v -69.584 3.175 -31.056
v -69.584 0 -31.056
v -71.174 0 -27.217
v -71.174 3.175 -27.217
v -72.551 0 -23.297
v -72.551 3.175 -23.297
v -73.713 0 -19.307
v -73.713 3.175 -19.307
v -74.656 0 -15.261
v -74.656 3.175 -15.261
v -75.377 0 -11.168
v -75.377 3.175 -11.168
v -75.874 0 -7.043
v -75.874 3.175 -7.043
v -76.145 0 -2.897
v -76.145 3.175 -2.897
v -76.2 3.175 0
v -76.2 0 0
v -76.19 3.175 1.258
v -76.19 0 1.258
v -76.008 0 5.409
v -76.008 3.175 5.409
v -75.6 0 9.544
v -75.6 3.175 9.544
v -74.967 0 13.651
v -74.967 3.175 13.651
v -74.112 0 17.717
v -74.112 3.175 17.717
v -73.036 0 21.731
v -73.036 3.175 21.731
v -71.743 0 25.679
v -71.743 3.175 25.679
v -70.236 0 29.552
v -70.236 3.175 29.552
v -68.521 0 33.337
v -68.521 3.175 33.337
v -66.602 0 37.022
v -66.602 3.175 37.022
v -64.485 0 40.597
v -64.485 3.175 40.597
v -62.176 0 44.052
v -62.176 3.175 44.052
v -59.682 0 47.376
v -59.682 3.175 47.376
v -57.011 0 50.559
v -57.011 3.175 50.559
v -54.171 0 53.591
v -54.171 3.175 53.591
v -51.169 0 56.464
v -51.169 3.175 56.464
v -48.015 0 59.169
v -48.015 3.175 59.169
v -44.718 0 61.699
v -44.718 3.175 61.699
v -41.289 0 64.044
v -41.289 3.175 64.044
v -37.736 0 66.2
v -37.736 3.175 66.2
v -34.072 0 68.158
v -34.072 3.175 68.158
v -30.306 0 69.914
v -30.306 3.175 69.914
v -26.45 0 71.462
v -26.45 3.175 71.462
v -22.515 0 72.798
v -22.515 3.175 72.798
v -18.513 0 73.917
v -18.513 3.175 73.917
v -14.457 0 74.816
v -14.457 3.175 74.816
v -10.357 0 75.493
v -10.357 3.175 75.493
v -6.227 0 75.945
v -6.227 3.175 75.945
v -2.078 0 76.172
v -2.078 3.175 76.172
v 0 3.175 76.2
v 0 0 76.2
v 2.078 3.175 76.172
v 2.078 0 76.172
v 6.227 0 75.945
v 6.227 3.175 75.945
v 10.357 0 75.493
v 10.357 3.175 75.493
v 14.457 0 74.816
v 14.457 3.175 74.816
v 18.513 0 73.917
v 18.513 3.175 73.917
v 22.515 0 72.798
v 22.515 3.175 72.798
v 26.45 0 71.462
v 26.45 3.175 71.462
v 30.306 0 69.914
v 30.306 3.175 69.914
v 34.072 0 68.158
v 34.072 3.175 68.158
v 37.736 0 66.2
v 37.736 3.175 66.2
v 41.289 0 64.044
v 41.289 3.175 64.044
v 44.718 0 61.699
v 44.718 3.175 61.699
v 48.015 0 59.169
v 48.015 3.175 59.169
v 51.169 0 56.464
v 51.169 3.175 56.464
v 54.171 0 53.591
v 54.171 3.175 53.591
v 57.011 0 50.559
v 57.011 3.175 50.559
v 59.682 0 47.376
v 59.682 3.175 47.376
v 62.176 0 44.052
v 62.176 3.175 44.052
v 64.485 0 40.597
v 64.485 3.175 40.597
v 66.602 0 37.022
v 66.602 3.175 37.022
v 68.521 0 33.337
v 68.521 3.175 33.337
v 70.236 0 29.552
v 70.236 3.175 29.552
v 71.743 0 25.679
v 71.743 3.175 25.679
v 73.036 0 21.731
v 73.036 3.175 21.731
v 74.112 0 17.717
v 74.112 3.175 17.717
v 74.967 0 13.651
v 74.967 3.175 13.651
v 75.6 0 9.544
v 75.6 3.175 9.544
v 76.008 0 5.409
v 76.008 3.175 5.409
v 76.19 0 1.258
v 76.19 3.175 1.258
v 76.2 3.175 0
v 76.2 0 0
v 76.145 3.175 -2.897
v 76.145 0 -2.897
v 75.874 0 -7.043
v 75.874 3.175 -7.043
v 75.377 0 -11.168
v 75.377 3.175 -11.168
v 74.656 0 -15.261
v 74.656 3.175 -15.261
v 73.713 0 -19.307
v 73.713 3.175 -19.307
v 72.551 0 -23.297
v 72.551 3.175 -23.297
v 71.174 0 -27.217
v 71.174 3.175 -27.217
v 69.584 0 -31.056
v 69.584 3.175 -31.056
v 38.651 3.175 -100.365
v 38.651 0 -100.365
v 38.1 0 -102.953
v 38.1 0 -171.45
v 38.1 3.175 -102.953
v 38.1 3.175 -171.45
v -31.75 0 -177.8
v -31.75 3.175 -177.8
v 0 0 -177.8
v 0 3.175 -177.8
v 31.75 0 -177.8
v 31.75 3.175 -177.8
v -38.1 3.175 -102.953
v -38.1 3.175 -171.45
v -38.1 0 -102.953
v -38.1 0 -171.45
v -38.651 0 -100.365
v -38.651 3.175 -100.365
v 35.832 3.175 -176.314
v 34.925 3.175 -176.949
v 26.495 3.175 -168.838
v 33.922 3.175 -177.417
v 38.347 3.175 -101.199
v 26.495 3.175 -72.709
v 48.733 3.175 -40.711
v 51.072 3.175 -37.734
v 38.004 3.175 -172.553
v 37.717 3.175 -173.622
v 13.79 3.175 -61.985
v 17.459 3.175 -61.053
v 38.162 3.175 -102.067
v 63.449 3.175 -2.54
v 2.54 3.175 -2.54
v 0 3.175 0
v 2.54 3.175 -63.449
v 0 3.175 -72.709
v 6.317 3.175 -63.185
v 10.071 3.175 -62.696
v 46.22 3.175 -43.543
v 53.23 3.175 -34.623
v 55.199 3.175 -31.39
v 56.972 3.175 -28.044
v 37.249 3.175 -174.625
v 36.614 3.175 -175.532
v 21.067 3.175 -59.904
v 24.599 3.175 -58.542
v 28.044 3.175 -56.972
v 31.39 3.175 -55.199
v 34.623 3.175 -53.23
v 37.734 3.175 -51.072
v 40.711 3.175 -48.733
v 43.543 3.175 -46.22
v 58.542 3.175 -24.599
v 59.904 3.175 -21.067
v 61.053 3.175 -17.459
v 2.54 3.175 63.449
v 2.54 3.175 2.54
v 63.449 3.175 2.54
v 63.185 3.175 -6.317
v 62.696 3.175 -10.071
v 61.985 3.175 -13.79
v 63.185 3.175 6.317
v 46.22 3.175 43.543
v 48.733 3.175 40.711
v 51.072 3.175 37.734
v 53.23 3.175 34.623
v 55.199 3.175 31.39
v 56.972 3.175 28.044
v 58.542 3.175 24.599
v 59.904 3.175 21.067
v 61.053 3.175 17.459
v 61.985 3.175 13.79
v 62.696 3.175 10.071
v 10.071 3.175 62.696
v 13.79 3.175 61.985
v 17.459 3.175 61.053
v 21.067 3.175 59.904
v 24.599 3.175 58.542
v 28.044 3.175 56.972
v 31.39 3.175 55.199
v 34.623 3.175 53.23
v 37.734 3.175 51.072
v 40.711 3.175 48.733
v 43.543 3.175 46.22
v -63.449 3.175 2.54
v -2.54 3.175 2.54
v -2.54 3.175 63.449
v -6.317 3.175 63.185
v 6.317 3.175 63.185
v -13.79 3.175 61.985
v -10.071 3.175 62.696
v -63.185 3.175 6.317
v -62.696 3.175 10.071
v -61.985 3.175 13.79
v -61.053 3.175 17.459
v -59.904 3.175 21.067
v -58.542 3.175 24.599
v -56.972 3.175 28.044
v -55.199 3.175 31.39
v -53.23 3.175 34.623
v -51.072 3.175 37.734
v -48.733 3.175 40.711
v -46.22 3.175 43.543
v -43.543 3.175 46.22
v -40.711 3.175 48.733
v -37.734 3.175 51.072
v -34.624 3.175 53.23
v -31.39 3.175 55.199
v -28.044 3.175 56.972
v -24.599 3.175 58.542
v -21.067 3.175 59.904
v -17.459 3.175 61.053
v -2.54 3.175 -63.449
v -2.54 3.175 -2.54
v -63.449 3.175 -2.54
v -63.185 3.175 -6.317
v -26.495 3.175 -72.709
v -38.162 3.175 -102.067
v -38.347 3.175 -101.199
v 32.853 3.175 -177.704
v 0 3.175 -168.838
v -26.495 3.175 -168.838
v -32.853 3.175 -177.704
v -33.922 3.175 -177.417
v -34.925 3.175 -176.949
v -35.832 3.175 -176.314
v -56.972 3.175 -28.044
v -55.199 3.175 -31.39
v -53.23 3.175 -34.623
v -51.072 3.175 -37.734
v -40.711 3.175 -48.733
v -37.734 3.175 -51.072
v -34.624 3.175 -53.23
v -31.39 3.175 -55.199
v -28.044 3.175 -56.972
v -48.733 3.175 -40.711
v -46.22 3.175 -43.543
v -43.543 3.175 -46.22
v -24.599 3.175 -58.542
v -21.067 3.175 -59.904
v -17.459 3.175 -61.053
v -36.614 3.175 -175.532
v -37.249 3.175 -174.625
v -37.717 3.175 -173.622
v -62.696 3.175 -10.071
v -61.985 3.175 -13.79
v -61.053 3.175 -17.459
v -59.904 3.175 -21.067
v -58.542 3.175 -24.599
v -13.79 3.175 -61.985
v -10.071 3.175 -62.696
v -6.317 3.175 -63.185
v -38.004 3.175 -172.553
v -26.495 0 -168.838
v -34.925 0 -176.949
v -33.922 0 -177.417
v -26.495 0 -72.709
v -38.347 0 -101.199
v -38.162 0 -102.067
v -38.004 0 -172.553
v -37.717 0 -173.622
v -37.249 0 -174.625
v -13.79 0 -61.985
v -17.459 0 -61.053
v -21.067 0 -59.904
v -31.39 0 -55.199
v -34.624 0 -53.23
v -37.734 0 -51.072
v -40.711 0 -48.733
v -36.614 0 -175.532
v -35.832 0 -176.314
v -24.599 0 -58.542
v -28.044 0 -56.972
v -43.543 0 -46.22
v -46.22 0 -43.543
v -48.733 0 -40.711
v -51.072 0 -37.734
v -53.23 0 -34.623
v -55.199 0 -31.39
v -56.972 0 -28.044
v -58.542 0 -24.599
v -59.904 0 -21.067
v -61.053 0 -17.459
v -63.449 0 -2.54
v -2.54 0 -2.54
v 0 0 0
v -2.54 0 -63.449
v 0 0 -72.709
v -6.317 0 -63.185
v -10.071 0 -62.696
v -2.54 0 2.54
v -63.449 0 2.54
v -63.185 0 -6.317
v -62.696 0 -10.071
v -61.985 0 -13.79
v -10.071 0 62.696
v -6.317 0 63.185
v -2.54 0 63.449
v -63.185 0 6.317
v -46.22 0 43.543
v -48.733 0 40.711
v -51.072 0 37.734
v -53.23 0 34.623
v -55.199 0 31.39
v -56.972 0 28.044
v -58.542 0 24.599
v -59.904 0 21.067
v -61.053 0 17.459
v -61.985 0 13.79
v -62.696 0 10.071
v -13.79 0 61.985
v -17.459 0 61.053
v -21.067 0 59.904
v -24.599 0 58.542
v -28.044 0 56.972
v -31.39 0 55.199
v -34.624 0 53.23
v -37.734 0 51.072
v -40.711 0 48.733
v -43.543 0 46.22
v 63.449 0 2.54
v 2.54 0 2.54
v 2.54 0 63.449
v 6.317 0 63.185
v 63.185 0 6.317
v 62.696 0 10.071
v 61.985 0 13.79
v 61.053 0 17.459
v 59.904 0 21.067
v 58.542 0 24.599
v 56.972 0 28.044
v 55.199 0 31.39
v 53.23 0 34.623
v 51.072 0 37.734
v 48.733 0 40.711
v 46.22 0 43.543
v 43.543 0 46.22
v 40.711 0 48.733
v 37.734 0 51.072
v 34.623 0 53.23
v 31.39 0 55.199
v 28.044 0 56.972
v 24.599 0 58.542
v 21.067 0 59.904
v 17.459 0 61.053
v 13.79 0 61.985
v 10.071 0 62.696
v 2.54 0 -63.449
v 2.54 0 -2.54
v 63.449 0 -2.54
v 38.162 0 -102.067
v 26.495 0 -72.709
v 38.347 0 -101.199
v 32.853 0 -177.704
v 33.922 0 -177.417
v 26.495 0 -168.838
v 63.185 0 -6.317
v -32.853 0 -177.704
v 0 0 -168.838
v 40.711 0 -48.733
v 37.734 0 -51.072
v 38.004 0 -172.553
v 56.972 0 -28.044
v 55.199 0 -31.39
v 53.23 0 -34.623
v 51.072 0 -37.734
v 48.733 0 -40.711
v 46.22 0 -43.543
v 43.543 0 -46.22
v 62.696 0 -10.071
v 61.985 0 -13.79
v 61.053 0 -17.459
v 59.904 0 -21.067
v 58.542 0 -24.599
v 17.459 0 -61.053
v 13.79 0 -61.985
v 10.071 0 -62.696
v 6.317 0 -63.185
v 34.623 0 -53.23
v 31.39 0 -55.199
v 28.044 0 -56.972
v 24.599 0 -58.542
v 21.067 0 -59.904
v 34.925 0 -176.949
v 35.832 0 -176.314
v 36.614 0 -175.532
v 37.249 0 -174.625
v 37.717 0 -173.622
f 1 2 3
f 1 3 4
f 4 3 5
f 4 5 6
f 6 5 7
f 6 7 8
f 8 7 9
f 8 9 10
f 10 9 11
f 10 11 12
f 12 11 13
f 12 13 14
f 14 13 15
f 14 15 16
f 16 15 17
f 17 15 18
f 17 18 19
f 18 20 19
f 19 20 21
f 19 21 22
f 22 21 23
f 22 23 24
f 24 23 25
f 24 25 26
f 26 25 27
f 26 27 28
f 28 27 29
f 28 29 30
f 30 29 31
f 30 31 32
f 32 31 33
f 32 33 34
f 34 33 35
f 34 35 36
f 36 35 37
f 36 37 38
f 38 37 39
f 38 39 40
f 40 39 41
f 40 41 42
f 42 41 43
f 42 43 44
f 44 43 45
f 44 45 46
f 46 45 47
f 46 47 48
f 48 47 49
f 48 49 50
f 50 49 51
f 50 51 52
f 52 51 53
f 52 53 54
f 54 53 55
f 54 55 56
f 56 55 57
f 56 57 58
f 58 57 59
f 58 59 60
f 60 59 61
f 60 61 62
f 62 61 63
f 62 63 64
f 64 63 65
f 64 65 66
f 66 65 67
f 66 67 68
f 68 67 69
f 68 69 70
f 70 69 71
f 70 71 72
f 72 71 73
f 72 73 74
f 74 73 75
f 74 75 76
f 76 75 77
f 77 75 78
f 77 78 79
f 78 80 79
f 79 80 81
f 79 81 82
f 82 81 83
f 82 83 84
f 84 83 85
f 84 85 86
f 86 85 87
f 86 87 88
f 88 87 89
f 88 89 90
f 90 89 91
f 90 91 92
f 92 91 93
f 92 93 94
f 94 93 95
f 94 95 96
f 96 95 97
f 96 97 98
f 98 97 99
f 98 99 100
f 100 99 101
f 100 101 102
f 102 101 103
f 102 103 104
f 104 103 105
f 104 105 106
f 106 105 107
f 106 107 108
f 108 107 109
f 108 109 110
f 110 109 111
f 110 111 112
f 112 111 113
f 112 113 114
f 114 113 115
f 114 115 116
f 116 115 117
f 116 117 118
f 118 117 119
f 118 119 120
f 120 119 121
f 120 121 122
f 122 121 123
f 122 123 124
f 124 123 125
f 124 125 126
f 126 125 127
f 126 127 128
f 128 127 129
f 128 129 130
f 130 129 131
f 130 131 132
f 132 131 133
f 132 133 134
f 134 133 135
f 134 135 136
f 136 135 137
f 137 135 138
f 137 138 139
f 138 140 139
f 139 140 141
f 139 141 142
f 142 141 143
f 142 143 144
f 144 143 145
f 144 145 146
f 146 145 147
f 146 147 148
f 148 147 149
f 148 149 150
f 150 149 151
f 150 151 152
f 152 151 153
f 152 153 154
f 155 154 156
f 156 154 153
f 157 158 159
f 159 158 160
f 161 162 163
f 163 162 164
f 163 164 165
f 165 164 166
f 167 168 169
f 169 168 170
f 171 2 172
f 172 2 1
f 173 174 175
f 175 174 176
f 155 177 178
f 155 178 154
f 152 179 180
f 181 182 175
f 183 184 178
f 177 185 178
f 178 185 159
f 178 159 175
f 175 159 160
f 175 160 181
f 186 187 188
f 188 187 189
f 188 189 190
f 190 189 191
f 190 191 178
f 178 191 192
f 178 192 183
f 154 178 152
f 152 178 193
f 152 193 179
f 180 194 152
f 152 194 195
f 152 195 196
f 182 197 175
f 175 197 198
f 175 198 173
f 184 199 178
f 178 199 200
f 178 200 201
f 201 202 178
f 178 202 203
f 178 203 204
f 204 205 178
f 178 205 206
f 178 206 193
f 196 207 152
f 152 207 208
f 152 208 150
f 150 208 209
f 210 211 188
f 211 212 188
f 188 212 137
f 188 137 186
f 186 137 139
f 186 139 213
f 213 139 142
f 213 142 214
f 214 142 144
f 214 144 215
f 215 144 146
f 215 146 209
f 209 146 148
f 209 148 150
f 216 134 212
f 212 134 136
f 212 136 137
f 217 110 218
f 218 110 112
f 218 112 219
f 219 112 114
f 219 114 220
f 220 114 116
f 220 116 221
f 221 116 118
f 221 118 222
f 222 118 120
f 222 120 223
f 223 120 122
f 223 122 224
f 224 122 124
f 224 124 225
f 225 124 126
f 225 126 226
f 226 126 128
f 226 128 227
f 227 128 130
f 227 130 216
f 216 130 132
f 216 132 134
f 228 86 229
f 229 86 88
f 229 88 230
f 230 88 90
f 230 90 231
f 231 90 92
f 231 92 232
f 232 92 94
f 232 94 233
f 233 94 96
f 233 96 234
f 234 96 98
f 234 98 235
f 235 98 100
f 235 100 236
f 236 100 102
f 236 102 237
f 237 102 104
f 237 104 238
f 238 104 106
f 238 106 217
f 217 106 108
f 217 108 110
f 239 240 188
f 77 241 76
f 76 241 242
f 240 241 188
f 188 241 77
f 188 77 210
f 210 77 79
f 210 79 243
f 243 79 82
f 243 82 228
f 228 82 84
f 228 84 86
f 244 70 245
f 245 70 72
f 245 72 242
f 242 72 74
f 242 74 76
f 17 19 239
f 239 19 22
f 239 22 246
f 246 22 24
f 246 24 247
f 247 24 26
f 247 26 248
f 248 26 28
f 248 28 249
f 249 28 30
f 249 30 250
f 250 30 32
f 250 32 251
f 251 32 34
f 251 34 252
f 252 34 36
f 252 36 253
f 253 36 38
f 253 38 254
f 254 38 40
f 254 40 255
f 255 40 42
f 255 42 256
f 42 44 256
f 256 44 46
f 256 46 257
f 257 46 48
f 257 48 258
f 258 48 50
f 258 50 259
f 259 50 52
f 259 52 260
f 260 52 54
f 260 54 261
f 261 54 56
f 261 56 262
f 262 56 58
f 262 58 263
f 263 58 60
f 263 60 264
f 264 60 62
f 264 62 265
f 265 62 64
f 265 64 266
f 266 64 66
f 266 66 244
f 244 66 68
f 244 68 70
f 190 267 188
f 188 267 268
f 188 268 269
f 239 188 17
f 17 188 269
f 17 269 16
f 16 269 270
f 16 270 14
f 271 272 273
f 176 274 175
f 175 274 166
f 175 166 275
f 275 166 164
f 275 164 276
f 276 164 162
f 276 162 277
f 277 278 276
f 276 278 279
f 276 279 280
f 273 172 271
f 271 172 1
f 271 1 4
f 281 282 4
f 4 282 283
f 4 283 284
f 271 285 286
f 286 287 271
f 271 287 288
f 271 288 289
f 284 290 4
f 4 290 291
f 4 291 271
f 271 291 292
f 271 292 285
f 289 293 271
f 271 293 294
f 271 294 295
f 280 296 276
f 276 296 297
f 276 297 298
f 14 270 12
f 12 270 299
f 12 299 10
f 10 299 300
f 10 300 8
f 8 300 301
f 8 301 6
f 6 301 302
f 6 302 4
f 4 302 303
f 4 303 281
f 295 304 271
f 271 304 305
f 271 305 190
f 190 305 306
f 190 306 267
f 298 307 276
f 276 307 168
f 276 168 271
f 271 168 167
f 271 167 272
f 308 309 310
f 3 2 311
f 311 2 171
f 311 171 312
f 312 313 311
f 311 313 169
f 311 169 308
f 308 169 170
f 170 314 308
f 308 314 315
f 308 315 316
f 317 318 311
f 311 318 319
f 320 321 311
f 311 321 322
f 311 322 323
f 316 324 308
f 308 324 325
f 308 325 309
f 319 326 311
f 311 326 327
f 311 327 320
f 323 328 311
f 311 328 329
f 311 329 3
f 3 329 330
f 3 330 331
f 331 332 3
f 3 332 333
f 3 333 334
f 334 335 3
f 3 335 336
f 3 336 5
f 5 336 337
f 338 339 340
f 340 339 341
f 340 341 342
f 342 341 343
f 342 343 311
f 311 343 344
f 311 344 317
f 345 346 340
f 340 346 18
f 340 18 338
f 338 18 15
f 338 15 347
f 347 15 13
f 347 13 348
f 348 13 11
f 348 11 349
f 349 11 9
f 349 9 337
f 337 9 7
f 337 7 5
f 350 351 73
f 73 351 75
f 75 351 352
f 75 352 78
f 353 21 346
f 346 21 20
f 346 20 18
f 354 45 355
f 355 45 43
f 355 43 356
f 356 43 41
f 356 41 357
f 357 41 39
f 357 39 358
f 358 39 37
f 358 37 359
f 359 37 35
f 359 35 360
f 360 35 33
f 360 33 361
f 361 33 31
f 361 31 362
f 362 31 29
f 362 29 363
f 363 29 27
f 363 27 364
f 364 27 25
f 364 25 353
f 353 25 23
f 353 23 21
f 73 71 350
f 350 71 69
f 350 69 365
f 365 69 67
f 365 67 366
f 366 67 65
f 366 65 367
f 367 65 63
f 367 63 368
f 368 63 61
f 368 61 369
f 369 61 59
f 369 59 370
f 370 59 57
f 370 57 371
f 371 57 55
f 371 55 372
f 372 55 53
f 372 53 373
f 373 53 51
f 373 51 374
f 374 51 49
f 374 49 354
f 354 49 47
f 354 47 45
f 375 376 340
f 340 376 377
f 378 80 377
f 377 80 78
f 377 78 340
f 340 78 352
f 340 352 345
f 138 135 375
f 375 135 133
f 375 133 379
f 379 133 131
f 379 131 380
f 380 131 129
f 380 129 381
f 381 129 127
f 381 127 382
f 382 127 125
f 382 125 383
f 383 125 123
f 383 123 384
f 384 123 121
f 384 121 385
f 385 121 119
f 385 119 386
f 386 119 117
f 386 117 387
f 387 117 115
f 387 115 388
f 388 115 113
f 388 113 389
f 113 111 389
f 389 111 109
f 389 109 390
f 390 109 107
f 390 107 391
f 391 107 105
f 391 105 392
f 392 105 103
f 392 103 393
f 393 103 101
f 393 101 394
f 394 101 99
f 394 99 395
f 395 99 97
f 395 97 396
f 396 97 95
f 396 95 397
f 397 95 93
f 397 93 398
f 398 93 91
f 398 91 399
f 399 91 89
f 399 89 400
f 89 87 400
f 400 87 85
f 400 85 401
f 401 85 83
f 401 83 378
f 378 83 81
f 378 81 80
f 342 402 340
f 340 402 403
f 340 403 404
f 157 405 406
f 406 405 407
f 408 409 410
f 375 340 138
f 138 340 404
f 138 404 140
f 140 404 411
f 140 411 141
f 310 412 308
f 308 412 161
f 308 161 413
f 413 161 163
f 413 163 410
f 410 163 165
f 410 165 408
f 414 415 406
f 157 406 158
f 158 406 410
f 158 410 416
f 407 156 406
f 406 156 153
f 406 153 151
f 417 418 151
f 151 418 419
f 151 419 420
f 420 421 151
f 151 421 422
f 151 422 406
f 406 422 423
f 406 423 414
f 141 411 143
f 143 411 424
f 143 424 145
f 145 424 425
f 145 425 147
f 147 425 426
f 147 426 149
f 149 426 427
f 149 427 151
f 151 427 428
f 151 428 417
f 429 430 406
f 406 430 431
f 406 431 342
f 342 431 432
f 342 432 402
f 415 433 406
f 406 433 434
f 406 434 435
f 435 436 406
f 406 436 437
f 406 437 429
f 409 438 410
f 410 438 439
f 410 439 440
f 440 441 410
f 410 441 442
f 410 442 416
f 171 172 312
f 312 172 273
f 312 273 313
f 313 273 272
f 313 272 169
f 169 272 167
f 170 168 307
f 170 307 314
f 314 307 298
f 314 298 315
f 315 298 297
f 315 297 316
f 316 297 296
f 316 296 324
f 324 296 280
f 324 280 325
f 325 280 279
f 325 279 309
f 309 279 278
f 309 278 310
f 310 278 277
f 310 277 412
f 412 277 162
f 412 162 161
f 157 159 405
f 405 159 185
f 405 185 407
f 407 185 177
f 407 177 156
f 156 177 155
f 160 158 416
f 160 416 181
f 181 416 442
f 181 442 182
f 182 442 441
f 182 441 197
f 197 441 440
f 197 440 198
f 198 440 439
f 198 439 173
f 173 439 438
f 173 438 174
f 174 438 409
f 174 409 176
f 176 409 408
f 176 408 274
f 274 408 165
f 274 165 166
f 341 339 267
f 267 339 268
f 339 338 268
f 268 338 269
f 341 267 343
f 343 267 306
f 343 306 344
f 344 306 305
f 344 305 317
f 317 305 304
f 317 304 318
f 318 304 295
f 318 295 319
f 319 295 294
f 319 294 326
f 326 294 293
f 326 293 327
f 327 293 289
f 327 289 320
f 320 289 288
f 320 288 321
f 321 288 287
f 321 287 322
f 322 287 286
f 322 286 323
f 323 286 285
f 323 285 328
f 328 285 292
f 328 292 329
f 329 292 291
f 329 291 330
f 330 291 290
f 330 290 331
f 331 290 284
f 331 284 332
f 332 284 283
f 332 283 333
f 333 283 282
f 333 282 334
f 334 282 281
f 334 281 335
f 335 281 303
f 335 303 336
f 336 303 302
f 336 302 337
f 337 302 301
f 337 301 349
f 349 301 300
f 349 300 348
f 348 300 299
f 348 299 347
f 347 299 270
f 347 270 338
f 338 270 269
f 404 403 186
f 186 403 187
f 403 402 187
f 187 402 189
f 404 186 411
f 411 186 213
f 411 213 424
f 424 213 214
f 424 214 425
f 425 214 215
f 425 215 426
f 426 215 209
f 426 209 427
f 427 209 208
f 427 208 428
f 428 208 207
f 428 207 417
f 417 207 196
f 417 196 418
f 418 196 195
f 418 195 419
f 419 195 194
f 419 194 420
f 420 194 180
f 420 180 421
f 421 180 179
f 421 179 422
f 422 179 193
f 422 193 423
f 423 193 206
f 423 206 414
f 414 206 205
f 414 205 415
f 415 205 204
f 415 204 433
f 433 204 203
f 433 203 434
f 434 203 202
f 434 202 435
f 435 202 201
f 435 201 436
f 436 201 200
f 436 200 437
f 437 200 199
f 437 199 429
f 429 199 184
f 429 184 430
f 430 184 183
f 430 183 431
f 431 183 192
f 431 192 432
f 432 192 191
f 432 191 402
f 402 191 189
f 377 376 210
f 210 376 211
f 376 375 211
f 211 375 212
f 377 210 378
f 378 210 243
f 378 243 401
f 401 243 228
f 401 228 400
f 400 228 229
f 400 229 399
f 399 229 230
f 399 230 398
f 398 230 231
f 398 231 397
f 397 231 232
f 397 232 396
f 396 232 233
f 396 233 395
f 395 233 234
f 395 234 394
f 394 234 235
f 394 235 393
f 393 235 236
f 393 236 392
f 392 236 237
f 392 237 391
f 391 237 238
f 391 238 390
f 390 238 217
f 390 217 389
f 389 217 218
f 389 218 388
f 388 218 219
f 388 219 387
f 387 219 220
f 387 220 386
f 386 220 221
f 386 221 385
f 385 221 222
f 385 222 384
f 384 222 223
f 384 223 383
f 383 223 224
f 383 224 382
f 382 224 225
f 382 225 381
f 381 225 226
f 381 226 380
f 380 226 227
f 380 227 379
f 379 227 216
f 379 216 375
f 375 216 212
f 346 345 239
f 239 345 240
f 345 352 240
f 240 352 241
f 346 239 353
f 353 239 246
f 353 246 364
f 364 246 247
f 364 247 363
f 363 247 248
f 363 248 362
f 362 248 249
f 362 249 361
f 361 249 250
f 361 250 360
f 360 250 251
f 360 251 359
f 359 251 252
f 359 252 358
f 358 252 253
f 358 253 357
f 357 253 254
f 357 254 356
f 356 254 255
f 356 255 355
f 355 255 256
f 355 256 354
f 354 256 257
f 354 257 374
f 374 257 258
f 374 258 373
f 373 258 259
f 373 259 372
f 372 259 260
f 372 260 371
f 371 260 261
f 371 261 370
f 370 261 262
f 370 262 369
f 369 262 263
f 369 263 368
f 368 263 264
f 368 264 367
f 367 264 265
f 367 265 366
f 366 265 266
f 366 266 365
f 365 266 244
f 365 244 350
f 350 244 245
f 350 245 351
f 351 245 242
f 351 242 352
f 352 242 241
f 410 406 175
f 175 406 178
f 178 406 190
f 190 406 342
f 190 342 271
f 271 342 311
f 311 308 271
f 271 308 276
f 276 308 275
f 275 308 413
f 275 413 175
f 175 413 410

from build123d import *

# Parameters (mm, degrees)
SKETCH1_R           = 76.2
SKETCH1_W           = 76.2
SKETCH1_H           = 76.2
BOSS_EXTRUDE1_DEPTH = 3.175
FILLET1_R           = 6.35
CUT_EXTRUDE1_DEPTH  = 3.175
SKETCH3_W           = 52.989505278
SKETCH3_H           = 96.128397395
CUT_EXTRUDE2_DEPTH  = 3.175


with BuildPart() as part:
    # Sketch1 → Boss-Extrude1 (new body)
    with BuildSketch(Plane(origin=(0, 0, 0), x_dir=(1, 0, 0), z_dir=(0, 1, 0))):
        Circle(SKETCH1_R)
        with BuildLine():
            Line((38.1, 101.6), (-38.1, 101.6))
            Line((-38.1, 101.6), (-69.5842745, 31.055897063))
            ThreePointArc((-69.5842745, 31.055897063), (0, 76.2), (69.5842745, 31.055897063))
            Line((69.5842745, 31.055897063), (38.1, 101.6))
        make_face()
        with Locations((0, 139.7)):
            Rectangle(SKETCH1_W, SKETCH1_H)
    extrude(amount=BOSS_EXTRUDE1_DEPTH)

    # Fillet1
    fillet1_edges = [part.edges().sort_by_distance(p)[0] for p in [
        (-38.1, 1.5875, -101.6),
        (-38.1, 1.5875, -177.8),
        (38.1, 1.5875, -177.8),
        (38.1, 1.5875, -101.6),
    ]]
    fillet(fillet1_edges, radius=FILLET1_R)

    # Sketch2 → Cut-Extrude1 (cut)
    with BuildSketch(Plane(origin=(0, 3.175, 0), x_dir=(1, 0, 0), z_dir=(0, 1, 0))):
        with BuildLine():
            Line((-63.449179664, 2.54), (-2.54, 2.54))
            Line((-2.54, 2.54), (-2.54, 63.449179664))
            ThreePointArc((-2.54, 63.449179664), (-44.901280605, 44.901280605), (-63.449179664, 2.54))
        make_face()
        with BuildLine():
            Line((2.54, 63.449179664), (2.54, 2.54))
            Line((2.54, 2.54), (63.449179664, 2.54))
            ThreePointArc((63.449179664, 2.54), (44.901280605, 44.901280605), (2.54, 63.449179664))
        make_face()
        with BuildLine():
            Line((63.449179664, -2.54), (2.54, -2.54))
            Line((2.54, -2.54), (2.54, -63.449179664))
            ThreePointArc((2.54, -63.449179664), (44.901280605, -44.901280605), (63.449179664, -2.54))
        make_face()
        with BuildLine():
            Line((-2.54, -63.449179664), (-2.54, -2.54))
            Line((-2.54, -2.54), (-63.449179664, -2.54))
            ThreePointArc((-63.449179664, -2.54), (-44.901280605, -44.901280605), (-2.54, -63.449179664))
        make_face()
    extrude(amount=-CUT_EXTRUDE1_DEPTH, mode=Mode.SUBTRACT)

    # Sketch3 → Cut-Extrude2 (cut)
    with BuildSketch(Plane(origin=(0, 3.175, 0), x_dir=(1, 0, 0), z_dir=(0, 1, 0))):
        with Locations((0, 120.773321073)):
            Rectangle(SKETCH3_W, SKETCH3_H)
    extrude(amount=-CUT_EXTRUDE2_DEPTH, mode=Mode.SUBTRACT)


solid = part.part
